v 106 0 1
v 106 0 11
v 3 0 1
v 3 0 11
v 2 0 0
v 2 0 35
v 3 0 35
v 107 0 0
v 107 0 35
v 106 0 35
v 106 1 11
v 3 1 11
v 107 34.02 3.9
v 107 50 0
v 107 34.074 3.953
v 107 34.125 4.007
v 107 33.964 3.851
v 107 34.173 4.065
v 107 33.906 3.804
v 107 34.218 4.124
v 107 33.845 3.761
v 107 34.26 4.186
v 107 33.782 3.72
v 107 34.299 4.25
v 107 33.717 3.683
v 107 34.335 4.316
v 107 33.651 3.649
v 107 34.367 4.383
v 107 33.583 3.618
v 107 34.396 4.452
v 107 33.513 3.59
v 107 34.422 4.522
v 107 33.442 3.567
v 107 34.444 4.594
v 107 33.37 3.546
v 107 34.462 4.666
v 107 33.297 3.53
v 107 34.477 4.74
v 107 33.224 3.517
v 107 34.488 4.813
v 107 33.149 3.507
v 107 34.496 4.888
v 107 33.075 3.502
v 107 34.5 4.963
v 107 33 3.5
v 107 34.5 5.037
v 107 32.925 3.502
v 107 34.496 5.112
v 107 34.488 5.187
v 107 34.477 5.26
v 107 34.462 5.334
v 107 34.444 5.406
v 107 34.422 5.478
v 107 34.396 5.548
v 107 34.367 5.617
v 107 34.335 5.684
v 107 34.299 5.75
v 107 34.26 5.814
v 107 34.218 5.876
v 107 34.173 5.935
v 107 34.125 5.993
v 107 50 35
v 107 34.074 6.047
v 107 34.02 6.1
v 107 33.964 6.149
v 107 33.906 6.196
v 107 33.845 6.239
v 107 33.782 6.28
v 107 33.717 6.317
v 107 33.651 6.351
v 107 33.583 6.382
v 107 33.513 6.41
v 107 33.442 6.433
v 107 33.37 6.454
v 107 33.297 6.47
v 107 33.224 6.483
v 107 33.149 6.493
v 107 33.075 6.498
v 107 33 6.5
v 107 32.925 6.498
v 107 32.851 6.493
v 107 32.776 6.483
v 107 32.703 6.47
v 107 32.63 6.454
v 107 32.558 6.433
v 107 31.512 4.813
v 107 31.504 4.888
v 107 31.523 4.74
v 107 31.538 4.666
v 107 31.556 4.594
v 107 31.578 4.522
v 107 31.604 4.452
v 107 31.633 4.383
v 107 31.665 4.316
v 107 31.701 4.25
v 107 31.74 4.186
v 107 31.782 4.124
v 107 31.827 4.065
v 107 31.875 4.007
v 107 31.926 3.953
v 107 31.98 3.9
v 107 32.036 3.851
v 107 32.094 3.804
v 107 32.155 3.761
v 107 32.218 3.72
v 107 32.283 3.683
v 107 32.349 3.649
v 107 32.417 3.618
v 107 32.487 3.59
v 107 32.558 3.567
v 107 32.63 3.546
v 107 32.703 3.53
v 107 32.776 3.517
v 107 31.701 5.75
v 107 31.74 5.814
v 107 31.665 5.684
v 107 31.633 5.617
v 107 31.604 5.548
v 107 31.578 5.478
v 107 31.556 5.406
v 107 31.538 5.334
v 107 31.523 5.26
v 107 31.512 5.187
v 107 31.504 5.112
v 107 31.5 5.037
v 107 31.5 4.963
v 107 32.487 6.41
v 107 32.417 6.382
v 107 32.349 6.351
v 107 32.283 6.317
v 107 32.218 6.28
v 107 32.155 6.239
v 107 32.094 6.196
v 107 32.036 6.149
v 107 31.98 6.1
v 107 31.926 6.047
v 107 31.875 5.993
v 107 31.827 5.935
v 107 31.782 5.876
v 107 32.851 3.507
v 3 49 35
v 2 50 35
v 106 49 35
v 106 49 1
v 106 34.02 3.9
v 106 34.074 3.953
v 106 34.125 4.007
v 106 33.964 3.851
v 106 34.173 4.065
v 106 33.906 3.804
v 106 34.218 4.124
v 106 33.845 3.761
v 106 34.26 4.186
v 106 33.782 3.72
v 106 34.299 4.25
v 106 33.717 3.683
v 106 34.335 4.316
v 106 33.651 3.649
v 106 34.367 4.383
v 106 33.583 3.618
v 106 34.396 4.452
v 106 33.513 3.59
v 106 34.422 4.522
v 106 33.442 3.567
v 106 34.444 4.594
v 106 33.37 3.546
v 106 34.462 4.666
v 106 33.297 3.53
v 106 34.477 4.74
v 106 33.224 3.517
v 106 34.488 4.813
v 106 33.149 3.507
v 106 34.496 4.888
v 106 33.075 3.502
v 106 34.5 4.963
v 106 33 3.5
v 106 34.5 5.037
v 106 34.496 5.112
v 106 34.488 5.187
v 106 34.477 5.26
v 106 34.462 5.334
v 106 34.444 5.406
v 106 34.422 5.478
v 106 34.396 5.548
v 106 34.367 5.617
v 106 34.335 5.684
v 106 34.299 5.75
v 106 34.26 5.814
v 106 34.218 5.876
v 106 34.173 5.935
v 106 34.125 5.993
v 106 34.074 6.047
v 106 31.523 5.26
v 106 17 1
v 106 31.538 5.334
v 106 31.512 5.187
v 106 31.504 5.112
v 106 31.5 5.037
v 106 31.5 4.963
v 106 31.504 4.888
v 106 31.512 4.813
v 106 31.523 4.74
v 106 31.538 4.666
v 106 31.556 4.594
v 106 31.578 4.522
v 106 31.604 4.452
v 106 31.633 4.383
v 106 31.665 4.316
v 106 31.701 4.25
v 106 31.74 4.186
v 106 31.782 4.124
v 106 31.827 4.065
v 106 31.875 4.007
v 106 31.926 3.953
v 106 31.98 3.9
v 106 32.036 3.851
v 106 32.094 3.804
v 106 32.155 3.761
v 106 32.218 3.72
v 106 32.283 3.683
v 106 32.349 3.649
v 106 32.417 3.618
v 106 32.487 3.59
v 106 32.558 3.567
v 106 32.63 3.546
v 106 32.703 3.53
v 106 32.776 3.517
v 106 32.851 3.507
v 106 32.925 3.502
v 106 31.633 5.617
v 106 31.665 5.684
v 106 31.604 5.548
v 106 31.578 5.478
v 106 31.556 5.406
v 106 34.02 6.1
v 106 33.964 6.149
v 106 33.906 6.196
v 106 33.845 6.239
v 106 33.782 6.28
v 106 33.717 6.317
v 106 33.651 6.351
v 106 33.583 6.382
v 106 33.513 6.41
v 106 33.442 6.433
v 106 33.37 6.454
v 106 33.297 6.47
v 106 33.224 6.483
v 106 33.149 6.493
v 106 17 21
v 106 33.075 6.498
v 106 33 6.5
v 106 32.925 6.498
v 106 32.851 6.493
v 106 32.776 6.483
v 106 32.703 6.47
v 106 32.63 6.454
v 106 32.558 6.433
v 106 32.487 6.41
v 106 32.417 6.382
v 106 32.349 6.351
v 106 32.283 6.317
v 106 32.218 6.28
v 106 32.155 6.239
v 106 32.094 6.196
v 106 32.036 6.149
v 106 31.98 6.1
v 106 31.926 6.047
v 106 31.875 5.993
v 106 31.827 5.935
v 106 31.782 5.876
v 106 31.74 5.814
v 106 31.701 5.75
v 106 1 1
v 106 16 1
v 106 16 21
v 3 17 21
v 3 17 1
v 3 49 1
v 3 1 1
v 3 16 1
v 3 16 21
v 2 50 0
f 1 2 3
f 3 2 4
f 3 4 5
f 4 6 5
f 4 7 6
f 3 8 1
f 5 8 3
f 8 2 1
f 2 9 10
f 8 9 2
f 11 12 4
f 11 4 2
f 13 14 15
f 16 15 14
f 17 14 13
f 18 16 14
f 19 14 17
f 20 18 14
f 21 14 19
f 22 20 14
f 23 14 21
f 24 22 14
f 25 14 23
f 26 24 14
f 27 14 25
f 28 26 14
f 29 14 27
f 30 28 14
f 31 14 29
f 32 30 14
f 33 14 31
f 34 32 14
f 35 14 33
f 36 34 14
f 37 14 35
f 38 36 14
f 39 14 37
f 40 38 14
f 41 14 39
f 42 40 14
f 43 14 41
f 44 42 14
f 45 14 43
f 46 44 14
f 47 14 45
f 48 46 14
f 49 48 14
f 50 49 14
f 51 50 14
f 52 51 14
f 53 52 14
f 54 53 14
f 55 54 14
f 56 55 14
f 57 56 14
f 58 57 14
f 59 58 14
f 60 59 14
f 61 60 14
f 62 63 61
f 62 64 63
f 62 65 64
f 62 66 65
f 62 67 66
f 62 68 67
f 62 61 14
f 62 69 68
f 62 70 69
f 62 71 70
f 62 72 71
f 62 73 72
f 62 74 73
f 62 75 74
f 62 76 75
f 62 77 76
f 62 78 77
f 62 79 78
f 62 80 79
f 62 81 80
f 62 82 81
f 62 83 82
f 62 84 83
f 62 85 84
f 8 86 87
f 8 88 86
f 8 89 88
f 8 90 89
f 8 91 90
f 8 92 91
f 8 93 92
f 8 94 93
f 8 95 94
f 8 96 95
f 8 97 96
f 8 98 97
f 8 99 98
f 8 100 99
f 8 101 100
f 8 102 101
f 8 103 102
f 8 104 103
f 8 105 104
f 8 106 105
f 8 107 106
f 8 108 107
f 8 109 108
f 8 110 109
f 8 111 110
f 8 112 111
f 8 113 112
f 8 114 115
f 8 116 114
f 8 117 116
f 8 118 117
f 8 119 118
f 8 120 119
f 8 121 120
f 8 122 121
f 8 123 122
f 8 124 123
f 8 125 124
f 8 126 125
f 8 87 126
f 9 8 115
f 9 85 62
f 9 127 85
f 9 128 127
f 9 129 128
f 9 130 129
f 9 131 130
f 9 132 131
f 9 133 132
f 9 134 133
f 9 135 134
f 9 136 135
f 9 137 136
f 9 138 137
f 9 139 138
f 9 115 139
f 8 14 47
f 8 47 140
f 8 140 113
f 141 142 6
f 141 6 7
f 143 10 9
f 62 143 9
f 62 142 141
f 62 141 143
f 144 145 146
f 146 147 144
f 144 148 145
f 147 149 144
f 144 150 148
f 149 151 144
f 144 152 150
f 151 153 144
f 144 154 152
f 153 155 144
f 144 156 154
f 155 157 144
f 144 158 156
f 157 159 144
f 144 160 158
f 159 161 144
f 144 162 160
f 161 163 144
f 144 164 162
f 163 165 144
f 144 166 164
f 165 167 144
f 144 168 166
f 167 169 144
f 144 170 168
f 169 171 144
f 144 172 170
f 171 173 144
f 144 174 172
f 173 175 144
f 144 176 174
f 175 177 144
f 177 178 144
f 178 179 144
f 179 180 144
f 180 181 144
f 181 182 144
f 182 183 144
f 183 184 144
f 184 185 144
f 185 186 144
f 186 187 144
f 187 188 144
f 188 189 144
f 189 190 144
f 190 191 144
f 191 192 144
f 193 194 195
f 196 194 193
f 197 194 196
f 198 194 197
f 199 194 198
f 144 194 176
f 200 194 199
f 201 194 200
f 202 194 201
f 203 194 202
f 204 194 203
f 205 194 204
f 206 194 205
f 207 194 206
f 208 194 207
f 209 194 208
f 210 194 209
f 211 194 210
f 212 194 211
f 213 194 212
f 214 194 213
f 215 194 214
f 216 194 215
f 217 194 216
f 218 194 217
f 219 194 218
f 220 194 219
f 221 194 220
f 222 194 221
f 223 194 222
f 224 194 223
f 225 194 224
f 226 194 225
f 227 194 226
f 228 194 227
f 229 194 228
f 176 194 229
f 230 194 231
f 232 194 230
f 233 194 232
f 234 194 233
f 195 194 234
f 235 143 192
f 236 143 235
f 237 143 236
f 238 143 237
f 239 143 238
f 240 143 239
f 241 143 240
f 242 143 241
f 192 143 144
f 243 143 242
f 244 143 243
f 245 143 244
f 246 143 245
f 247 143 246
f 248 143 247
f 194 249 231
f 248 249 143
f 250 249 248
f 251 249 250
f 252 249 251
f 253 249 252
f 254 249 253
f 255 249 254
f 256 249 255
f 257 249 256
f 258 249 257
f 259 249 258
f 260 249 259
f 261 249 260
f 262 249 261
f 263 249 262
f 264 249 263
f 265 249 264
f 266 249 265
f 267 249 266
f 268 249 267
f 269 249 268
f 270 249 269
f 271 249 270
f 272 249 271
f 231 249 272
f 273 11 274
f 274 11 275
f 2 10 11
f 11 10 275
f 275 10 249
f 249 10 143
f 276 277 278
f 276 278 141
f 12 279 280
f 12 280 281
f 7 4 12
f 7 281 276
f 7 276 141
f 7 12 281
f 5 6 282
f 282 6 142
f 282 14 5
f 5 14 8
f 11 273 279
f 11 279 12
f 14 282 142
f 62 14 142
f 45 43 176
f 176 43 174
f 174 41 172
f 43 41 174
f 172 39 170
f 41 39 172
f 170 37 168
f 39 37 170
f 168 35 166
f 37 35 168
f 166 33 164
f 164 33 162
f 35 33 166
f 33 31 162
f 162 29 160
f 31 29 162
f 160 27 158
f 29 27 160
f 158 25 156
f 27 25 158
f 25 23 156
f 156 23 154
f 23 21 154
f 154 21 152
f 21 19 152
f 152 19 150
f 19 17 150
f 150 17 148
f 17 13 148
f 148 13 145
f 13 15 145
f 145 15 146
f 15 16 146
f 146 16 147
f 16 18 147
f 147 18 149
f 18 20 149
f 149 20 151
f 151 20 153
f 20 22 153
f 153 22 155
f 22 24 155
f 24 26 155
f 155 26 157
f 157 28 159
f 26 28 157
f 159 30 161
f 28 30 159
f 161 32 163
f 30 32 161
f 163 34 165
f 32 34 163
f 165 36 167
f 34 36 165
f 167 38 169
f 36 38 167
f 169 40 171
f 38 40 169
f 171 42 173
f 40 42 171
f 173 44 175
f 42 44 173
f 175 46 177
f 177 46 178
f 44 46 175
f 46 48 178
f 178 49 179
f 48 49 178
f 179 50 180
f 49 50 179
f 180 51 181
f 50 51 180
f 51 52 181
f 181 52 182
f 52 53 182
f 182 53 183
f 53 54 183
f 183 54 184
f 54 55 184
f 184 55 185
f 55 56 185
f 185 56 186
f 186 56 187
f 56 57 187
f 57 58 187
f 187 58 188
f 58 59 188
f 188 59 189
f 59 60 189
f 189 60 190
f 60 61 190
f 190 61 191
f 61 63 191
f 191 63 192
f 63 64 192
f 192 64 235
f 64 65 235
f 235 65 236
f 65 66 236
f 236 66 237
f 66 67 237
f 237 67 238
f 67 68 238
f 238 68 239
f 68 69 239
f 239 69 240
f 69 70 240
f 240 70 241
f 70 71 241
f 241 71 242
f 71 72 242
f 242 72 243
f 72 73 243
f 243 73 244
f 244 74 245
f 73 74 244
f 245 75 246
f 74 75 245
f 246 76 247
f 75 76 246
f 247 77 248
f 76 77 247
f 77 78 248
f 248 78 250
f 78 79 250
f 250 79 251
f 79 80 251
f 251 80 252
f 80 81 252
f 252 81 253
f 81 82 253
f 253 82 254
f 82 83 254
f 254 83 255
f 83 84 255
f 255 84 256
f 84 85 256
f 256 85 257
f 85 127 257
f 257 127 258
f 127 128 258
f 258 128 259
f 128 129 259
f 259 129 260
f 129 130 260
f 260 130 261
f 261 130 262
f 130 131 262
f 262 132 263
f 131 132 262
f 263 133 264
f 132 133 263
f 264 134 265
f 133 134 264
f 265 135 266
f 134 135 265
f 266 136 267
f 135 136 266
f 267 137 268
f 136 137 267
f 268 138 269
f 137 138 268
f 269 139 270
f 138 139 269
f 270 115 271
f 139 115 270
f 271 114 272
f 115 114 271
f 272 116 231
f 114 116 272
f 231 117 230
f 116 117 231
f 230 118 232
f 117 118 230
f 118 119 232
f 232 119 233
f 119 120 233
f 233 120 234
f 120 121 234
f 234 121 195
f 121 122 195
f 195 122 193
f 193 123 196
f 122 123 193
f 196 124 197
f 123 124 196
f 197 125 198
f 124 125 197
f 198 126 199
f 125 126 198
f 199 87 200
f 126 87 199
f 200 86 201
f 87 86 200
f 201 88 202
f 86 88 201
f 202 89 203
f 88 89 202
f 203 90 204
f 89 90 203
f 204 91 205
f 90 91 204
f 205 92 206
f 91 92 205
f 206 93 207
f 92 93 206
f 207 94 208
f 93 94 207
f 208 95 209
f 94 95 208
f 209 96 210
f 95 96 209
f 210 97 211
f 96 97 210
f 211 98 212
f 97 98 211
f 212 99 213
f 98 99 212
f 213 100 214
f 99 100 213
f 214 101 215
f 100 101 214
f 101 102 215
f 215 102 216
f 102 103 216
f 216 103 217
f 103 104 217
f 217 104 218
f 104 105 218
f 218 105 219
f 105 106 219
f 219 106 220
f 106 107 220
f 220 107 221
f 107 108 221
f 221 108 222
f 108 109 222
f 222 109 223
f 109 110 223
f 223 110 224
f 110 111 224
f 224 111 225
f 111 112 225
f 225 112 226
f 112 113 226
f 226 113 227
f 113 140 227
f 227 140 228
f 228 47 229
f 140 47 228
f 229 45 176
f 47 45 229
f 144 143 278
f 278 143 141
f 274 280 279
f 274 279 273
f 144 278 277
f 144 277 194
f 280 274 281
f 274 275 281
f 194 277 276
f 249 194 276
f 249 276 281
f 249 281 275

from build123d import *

# Parameters (mm, degrees)
CYLINDER_R     = 1.5
CYLINDER_DEPTH = 10
BOX002_W       = 103
BOX002_H       = 1
BOX002_DEPTH   = 10
BOX003_W       = 103
BOX003_H       = 1
BOX003_DEPTH   = 20
BOX001_W       = 103
BOX001_H       = 49
BOX001_DEPTH   = 34
BOX_W          = 105
BOX_H          = 50
BOX_DEPTH      = 35


with BuildPart() as pump_hole:
    # Cylinder → Cylinder (new body)
    with BuildSketch(Plane(origin=(100, 33, 5), x_dir=(0, 0, -1), z_dir=(1, 0, 0))):
        Circle(CYLINDER_R)
    extrude(amount=CYLINDER_DEPTH)


with BuildPart() as front_piece:
    # Box002 → Box002 (new body)
    with BuildSketch(Plane(origin=(1, 0, 1), x_dir=(1, 0, 0), z_dir=(0, 0, 1))):
        with Locations((51.5, 0.5)):
            Rectangle(BOX002_W, BOX002_H)
    extrude(amount=BOX002_DEPTH)


with BuildPart() as mid_piece:
    # Box003 → Box003 (new body)
    with BuildSketch(Plane(origin=(1, 16, 1), x_dir=(1, 0, 0), z_dir=(0, 0, 1))):
        with Locations((51.5, 0.5)):
            Rectangle(BOX003_W, BOX003_H)
    extrude(amount=BOX003_DEPTH)


with BuildPart() as primary_cut_out:
    # Box001 → Box001 (new body)
    with BuildSketch(Plane(origin=(1, 0, 1), x_dir=(1, 0, 0), z_dir=(0, 0, 1))):
        with Locations((51.5, 24.5)):
            Rectangle(BOX001_W, BOX001_H)
    extrude(amount=BOX001_DEPTH)


with BuildPart() as pool:
    # Box → Box (new body)
    with BuildSketch(Plane.XY):
        with Locations((52.5, 25)):
            Rectangle(BOX_W, BOX_H)
    extrude(amount=BOX_DEPTH)

    # Cut: cut Primary Cut Out
    add(primary_cut_out.part, mode=Mode.SUBTRACT)

    # Fusion: union Front Piece, Mid Piece
    add(front_piece.part)
    add(mid_piece.part)

    # Cut001: cut Pump Hole
    add(pump_hole.part, mode=Mode.SUBTRACT)


with BuildPart() as pool_1:
    # Cut001 placement: moved
    add(pool.part.moved(Location((2, 0, 0))))


solid = pool_1.part
